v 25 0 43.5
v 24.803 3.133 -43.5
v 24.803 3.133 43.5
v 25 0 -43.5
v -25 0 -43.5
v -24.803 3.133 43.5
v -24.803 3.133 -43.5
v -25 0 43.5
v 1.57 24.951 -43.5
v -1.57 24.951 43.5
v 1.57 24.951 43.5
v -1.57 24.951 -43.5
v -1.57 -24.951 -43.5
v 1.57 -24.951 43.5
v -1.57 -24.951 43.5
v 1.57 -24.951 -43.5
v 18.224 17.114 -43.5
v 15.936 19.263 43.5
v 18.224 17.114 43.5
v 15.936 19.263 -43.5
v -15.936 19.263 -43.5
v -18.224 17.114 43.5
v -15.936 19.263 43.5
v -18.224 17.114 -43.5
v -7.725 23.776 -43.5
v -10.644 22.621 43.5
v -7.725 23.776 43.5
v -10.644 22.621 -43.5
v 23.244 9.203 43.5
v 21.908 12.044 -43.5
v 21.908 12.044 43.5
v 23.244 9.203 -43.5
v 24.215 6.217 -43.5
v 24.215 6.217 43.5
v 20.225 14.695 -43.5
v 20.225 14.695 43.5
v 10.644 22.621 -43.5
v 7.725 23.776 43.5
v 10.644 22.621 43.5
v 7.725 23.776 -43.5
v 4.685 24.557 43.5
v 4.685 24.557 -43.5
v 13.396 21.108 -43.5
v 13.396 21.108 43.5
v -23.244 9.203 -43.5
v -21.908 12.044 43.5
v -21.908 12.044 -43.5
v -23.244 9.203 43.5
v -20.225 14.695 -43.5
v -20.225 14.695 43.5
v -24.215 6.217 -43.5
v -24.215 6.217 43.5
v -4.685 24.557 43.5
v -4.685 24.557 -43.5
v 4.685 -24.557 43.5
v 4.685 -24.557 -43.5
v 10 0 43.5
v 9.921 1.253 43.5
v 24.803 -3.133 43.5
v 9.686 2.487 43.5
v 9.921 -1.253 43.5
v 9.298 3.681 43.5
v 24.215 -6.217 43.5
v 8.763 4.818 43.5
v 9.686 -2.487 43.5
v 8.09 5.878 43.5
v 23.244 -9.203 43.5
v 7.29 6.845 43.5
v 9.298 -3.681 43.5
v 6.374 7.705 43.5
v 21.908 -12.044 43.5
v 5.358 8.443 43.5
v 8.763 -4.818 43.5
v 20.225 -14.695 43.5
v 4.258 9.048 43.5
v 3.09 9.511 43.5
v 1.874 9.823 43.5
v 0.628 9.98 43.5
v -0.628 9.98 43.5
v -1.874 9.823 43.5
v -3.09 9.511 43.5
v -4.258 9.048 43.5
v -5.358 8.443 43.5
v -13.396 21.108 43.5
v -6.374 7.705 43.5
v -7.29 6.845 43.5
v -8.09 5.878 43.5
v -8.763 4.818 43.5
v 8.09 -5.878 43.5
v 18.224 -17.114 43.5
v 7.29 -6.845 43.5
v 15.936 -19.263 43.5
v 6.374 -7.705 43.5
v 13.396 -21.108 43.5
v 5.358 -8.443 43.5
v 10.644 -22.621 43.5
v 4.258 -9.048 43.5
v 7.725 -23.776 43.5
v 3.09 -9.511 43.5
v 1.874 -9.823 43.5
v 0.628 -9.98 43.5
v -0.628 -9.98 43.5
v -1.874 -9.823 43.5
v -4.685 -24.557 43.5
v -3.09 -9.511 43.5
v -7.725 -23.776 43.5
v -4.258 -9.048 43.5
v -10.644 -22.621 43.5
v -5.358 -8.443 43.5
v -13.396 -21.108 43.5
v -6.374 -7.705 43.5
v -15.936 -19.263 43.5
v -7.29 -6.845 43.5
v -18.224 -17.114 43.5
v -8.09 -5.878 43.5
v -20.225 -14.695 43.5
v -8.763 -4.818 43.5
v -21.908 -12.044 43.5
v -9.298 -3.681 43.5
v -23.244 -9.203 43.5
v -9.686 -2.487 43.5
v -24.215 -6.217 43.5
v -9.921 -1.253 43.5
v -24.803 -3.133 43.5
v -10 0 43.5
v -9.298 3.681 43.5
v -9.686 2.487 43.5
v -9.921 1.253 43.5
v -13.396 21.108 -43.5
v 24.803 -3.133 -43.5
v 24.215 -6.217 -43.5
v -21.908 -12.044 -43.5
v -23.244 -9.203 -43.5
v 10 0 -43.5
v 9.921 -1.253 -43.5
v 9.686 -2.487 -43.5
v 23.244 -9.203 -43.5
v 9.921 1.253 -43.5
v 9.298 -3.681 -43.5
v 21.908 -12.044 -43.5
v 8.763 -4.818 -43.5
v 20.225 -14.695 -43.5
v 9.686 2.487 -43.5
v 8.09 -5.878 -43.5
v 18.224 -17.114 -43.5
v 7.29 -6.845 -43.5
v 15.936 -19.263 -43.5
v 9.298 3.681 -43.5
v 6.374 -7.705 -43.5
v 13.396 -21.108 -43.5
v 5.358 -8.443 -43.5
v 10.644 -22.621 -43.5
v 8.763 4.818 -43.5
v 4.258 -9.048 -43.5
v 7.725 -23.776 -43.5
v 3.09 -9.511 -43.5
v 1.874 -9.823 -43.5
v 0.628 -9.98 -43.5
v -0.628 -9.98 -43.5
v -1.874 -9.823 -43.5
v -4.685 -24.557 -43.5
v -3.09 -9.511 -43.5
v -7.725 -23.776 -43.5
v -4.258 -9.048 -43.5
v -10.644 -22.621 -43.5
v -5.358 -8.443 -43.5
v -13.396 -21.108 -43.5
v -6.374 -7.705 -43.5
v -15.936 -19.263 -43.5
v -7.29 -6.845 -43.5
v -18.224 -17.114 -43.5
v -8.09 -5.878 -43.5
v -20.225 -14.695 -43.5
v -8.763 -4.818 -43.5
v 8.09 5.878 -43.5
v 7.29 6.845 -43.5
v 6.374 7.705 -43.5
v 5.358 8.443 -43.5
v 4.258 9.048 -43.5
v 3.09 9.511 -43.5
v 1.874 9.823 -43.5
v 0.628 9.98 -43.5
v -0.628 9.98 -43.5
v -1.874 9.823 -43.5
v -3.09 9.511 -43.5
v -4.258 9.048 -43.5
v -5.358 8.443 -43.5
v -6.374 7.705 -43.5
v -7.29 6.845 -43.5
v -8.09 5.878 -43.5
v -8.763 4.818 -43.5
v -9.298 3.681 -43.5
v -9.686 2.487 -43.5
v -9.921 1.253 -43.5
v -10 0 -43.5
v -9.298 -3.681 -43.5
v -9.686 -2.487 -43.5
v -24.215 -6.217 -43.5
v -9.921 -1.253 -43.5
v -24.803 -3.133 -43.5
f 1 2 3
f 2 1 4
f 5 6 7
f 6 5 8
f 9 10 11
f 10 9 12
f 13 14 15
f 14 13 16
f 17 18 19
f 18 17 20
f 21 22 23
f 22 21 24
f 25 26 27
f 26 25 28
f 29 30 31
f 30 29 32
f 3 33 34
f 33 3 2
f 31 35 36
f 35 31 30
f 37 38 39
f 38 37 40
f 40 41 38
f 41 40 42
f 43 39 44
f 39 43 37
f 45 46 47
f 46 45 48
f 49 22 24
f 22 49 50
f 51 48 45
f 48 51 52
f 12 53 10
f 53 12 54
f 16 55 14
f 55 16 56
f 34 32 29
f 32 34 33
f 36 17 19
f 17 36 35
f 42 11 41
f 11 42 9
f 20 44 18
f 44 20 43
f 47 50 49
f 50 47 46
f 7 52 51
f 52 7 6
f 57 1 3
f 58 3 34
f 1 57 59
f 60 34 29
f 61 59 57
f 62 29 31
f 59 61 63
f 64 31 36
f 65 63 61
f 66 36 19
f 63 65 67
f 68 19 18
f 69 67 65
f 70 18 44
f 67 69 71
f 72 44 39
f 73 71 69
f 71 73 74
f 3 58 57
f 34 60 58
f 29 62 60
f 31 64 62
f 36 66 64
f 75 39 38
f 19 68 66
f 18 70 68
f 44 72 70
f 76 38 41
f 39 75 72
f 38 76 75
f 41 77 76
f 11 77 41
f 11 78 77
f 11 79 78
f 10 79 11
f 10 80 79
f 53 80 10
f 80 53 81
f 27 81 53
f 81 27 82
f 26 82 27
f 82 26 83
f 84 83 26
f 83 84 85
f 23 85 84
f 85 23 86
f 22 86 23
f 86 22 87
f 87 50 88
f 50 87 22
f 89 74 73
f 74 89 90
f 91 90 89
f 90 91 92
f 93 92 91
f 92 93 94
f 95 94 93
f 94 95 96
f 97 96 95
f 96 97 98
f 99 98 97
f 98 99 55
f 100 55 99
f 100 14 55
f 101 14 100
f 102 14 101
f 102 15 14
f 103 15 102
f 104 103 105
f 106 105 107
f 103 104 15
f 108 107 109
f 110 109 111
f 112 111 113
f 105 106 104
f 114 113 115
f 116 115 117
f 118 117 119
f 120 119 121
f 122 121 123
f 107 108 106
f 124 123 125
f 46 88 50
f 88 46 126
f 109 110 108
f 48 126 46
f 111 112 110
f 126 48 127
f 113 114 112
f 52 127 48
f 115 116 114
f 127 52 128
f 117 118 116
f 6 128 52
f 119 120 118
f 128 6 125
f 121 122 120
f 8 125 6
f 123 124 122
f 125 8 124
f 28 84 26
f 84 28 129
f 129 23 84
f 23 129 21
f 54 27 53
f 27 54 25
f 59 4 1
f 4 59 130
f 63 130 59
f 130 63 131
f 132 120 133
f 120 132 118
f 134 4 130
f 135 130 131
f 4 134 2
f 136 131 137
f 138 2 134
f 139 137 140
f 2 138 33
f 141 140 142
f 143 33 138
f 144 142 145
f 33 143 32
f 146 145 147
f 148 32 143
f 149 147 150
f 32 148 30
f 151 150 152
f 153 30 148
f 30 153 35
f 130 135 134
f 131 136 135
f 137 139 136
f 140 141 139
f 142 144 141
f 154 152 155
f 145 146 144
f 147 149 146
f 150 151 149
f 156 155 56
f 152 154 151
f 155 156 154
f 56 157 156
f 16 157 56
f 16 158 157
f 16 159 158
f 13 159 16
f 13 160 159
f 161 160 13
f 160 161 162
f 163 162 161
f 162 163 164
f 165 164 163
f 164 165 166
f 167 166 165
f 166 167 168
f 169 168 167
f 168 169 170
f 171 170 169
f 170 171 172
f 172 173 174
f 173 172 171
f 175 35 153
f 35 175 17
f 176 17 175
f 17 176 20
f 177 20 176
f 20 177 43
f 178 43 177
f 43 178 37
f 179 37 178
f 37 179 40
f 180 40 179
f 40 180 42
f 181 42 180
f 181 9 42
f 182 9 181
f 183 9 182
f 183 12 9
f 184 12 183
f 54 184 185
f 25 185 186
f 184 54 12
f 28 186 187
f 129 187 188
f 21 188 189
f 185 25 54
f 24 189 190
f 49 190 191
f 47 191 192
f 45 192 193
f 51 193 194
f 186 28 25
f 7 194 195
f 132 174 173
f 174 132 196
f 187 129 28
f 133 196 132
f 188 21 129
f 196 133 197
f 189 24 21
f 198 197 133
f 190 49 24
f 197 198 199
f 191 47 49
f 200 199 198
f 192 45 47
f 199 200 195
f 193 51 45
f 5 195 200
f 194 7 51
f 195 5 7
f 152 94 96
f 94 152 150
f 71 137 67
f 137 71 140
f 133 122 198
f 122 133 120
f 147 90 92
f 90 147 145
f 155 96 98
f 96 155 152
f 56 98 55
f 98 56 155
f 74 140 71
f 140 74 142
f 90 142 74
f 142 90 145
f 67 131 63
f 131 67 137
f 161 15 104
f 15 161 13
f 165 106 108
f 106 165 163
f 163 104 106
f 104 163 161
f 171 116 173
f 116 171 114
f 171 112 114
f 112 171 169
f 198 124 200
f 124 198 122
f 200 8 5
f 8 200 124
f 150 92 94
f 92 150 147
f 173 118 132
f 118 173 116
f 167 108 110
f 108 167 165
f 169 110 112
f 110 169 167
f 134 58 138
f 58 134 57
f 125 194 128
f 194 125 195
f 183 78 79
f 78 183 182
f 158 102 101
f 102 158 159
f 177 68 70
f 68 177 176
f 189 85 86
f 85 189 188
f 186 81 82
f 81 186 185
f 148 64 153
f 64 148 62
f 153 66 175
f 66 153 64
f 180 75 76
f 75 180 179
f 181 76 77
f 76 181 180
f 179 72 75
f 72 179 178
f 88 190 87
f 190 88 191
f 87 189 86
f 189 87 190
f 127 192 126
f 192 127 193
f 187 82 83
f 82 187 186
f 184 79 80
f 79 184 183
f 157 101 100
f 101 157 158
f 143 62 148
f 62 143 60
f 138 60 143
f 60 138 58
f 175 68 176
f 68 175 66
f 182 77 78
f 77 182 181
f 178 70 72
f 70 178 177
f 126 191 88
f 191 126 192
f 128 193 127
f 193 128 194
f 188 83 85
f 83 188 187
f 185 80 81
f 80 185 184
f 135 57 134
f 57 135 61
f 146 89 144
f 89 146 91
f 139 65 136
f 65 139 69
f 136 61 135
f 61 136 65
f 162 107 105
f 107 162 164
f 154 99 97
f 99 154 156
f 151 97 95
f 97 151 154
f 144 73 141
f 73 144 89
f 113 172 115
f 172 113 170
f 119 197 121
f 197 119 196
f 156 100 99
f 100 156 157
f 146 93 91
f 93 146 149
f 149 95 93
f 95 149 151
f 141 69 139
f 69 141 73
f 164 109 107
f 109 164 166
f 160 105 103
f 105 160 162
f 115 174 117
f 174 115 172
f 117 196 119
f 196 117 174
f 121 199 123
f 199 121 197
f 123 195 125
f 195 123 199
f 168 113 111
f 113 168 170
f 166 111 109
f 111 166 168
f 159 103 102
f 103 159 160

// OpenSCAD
$fn = 50;


difference() {
	union() {
		translate(v = [0, 0, -43.5000000000]) {
			cylinder(h = 87, r = 25.0000000000);
		}
	}
	union() {
		translate(v = [0, 0, -100.0000000000]) {
			cylinder(h = 200, r = 10);
		}
	}
}
